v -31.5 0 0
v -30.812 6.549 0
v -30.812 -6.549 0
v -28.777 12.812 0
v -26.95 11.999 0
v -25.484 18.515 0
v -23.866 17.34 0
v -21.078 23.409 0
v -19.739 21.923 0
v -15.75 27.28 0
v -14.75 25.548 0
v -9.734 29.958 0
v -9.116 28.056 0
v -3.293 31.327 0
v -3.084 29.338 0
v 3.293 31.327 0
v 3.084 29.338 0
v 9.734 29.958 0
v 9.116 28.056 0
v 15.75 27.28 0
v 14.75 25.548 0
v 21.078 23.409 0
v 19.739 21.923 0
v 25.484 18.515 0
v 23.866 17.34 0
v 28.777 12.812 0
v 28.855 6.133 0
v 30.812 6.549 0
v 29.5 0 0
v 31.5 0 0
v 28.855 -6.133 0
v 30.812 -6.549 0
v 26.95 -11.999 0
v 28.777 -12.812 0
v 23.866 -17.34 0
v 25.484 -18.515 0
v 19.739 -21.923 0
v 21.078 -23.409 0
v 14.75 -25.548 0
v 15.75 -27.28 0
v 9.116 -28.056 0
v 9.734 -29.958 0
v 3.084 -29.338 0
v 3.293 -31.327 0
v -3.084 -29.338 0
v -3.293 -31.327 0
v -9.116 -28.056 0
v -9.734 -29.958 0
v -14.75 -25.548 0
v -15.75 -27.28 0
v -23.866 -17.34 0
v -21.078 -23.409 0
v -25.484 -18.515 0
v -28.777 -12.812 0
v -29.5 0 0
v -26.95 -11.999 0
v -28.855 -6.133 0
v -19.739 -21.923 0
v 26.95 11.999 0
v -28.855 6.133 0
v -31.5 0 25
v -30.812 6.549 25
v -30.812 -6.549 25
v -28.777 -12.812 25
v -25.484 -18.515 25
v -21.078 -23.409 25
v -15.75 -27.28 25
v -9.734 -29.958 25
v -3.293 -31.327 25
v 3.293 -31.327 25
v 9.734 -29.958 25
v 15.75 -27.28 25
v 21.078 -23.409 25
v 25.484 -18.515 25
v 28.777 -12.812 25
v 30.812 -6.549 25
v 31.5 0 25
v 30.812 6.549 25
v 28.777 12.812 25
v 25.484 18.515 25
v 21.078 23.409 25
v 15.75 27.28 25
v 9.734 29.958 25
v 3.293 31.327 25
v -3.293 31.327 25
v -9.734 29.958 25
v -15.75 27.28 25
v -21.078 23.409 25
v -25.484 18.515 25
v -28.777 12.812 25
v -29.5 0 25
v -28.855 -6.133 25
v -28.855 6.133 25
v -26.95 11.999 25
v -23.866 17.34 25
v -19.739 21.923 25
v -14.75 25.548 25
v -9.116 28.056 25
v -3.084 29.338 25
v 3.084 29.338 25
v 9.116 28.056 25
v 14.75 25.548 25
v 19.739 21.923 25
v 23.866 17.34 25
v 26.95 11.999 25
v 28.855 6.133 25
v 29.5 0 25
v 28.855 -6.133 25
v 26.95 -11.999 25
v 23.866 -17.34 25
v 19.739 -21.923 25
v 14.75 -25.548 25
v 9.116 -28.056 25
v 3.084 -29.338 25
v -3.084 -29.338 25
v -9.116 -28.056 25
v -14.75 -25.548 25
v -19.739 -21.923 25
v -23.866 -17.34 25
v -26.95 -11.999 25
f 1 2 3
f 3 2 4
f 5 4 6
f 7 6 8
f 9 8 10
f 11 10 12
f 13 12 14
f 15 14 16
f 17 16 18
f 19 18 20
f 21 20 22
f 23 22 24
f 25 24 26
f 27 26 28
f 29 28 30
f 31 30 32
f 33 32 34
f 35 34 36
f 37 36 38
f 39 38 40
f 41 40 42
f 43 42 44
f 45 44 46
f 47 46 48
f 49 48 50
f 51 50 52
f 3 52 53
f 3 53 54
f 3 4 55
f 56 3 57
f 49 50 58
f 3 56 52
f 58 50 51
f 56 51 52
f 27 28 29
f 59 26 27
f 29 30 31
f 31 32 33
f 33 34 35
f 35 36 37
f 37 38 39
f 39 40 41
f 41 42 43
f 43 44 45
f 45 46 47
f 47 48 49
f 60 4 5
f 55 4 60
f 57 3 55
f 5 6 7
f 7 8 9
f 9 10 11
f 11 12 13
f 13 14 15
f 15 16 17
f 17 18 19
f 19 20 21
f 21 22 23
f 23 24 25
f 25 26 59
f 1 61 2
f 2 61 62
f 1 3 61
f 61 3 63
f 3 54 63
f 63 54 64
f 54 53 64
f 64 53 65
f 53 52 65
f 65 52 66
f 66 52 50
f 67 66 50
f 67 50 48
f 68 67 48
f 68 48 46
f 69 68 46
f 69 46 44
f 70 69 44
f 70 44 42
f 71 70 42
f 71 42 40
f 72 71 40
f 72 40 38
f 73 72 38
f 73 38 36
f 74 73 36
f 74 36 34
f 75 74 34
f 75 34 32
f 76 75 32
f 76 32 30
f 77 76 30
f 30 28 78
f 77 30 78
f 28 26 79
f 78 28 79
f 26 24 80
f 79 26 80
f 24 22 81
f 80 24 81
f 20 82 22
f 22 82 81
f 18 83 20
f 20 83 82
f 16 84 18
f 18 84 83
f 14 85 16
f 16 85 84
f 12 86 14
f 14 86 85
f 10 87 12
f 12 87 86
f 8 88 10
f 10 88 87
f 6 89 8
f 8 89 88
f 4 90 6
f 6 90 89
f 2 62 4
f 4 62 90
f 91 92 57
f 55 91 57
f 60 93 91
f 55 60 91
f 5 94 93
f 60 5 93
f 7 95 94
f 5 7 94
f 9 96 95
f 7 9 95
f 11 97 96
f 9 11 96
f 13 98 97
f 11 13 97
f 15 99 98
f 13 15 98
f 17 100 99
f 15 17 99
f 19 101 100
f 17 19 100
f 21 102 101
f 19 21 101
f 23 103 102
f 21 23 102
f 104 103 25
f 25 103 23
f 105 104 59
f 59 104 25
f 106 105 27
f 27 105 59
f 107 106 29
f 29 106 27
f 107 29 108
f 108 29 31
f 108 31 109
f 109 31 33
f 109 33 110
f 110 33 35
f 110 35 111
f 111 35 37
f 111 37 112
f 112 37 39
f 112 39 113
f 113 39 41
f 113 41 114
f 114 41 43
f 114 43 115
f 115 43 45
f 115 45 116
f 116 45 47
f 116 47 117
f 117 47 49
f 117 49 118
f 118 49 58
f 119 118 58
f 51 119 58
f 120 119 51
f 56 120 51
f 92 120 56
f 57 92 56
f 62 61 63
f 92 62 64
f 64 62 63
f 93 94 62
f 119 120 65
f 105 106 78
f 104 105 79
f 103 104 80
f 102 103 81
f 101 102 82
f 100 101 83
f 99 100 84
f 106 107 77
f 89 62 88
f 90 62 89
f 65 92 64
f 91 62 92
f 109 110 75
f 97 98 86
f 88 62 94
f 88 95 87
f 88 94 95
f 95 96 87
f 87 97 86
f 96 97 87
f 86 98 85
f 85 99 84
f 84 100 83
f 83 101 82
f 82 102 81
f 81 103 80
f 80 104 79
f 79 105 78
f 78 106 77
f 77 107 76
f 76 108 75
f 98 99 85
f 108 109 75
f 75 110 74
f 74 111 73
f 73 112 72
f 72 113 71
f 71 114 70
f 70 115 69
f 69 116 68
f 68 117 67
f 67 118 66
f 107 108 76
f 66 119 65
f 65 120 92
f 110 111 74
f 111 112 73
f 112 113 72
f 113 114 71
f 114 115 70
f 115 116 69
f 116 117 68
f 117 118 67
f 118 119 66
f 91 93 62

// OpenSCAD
difference() {
	cylinder(25, 31.5, 31.5);
	cylinder(25, 29.5, 29.5);
}
